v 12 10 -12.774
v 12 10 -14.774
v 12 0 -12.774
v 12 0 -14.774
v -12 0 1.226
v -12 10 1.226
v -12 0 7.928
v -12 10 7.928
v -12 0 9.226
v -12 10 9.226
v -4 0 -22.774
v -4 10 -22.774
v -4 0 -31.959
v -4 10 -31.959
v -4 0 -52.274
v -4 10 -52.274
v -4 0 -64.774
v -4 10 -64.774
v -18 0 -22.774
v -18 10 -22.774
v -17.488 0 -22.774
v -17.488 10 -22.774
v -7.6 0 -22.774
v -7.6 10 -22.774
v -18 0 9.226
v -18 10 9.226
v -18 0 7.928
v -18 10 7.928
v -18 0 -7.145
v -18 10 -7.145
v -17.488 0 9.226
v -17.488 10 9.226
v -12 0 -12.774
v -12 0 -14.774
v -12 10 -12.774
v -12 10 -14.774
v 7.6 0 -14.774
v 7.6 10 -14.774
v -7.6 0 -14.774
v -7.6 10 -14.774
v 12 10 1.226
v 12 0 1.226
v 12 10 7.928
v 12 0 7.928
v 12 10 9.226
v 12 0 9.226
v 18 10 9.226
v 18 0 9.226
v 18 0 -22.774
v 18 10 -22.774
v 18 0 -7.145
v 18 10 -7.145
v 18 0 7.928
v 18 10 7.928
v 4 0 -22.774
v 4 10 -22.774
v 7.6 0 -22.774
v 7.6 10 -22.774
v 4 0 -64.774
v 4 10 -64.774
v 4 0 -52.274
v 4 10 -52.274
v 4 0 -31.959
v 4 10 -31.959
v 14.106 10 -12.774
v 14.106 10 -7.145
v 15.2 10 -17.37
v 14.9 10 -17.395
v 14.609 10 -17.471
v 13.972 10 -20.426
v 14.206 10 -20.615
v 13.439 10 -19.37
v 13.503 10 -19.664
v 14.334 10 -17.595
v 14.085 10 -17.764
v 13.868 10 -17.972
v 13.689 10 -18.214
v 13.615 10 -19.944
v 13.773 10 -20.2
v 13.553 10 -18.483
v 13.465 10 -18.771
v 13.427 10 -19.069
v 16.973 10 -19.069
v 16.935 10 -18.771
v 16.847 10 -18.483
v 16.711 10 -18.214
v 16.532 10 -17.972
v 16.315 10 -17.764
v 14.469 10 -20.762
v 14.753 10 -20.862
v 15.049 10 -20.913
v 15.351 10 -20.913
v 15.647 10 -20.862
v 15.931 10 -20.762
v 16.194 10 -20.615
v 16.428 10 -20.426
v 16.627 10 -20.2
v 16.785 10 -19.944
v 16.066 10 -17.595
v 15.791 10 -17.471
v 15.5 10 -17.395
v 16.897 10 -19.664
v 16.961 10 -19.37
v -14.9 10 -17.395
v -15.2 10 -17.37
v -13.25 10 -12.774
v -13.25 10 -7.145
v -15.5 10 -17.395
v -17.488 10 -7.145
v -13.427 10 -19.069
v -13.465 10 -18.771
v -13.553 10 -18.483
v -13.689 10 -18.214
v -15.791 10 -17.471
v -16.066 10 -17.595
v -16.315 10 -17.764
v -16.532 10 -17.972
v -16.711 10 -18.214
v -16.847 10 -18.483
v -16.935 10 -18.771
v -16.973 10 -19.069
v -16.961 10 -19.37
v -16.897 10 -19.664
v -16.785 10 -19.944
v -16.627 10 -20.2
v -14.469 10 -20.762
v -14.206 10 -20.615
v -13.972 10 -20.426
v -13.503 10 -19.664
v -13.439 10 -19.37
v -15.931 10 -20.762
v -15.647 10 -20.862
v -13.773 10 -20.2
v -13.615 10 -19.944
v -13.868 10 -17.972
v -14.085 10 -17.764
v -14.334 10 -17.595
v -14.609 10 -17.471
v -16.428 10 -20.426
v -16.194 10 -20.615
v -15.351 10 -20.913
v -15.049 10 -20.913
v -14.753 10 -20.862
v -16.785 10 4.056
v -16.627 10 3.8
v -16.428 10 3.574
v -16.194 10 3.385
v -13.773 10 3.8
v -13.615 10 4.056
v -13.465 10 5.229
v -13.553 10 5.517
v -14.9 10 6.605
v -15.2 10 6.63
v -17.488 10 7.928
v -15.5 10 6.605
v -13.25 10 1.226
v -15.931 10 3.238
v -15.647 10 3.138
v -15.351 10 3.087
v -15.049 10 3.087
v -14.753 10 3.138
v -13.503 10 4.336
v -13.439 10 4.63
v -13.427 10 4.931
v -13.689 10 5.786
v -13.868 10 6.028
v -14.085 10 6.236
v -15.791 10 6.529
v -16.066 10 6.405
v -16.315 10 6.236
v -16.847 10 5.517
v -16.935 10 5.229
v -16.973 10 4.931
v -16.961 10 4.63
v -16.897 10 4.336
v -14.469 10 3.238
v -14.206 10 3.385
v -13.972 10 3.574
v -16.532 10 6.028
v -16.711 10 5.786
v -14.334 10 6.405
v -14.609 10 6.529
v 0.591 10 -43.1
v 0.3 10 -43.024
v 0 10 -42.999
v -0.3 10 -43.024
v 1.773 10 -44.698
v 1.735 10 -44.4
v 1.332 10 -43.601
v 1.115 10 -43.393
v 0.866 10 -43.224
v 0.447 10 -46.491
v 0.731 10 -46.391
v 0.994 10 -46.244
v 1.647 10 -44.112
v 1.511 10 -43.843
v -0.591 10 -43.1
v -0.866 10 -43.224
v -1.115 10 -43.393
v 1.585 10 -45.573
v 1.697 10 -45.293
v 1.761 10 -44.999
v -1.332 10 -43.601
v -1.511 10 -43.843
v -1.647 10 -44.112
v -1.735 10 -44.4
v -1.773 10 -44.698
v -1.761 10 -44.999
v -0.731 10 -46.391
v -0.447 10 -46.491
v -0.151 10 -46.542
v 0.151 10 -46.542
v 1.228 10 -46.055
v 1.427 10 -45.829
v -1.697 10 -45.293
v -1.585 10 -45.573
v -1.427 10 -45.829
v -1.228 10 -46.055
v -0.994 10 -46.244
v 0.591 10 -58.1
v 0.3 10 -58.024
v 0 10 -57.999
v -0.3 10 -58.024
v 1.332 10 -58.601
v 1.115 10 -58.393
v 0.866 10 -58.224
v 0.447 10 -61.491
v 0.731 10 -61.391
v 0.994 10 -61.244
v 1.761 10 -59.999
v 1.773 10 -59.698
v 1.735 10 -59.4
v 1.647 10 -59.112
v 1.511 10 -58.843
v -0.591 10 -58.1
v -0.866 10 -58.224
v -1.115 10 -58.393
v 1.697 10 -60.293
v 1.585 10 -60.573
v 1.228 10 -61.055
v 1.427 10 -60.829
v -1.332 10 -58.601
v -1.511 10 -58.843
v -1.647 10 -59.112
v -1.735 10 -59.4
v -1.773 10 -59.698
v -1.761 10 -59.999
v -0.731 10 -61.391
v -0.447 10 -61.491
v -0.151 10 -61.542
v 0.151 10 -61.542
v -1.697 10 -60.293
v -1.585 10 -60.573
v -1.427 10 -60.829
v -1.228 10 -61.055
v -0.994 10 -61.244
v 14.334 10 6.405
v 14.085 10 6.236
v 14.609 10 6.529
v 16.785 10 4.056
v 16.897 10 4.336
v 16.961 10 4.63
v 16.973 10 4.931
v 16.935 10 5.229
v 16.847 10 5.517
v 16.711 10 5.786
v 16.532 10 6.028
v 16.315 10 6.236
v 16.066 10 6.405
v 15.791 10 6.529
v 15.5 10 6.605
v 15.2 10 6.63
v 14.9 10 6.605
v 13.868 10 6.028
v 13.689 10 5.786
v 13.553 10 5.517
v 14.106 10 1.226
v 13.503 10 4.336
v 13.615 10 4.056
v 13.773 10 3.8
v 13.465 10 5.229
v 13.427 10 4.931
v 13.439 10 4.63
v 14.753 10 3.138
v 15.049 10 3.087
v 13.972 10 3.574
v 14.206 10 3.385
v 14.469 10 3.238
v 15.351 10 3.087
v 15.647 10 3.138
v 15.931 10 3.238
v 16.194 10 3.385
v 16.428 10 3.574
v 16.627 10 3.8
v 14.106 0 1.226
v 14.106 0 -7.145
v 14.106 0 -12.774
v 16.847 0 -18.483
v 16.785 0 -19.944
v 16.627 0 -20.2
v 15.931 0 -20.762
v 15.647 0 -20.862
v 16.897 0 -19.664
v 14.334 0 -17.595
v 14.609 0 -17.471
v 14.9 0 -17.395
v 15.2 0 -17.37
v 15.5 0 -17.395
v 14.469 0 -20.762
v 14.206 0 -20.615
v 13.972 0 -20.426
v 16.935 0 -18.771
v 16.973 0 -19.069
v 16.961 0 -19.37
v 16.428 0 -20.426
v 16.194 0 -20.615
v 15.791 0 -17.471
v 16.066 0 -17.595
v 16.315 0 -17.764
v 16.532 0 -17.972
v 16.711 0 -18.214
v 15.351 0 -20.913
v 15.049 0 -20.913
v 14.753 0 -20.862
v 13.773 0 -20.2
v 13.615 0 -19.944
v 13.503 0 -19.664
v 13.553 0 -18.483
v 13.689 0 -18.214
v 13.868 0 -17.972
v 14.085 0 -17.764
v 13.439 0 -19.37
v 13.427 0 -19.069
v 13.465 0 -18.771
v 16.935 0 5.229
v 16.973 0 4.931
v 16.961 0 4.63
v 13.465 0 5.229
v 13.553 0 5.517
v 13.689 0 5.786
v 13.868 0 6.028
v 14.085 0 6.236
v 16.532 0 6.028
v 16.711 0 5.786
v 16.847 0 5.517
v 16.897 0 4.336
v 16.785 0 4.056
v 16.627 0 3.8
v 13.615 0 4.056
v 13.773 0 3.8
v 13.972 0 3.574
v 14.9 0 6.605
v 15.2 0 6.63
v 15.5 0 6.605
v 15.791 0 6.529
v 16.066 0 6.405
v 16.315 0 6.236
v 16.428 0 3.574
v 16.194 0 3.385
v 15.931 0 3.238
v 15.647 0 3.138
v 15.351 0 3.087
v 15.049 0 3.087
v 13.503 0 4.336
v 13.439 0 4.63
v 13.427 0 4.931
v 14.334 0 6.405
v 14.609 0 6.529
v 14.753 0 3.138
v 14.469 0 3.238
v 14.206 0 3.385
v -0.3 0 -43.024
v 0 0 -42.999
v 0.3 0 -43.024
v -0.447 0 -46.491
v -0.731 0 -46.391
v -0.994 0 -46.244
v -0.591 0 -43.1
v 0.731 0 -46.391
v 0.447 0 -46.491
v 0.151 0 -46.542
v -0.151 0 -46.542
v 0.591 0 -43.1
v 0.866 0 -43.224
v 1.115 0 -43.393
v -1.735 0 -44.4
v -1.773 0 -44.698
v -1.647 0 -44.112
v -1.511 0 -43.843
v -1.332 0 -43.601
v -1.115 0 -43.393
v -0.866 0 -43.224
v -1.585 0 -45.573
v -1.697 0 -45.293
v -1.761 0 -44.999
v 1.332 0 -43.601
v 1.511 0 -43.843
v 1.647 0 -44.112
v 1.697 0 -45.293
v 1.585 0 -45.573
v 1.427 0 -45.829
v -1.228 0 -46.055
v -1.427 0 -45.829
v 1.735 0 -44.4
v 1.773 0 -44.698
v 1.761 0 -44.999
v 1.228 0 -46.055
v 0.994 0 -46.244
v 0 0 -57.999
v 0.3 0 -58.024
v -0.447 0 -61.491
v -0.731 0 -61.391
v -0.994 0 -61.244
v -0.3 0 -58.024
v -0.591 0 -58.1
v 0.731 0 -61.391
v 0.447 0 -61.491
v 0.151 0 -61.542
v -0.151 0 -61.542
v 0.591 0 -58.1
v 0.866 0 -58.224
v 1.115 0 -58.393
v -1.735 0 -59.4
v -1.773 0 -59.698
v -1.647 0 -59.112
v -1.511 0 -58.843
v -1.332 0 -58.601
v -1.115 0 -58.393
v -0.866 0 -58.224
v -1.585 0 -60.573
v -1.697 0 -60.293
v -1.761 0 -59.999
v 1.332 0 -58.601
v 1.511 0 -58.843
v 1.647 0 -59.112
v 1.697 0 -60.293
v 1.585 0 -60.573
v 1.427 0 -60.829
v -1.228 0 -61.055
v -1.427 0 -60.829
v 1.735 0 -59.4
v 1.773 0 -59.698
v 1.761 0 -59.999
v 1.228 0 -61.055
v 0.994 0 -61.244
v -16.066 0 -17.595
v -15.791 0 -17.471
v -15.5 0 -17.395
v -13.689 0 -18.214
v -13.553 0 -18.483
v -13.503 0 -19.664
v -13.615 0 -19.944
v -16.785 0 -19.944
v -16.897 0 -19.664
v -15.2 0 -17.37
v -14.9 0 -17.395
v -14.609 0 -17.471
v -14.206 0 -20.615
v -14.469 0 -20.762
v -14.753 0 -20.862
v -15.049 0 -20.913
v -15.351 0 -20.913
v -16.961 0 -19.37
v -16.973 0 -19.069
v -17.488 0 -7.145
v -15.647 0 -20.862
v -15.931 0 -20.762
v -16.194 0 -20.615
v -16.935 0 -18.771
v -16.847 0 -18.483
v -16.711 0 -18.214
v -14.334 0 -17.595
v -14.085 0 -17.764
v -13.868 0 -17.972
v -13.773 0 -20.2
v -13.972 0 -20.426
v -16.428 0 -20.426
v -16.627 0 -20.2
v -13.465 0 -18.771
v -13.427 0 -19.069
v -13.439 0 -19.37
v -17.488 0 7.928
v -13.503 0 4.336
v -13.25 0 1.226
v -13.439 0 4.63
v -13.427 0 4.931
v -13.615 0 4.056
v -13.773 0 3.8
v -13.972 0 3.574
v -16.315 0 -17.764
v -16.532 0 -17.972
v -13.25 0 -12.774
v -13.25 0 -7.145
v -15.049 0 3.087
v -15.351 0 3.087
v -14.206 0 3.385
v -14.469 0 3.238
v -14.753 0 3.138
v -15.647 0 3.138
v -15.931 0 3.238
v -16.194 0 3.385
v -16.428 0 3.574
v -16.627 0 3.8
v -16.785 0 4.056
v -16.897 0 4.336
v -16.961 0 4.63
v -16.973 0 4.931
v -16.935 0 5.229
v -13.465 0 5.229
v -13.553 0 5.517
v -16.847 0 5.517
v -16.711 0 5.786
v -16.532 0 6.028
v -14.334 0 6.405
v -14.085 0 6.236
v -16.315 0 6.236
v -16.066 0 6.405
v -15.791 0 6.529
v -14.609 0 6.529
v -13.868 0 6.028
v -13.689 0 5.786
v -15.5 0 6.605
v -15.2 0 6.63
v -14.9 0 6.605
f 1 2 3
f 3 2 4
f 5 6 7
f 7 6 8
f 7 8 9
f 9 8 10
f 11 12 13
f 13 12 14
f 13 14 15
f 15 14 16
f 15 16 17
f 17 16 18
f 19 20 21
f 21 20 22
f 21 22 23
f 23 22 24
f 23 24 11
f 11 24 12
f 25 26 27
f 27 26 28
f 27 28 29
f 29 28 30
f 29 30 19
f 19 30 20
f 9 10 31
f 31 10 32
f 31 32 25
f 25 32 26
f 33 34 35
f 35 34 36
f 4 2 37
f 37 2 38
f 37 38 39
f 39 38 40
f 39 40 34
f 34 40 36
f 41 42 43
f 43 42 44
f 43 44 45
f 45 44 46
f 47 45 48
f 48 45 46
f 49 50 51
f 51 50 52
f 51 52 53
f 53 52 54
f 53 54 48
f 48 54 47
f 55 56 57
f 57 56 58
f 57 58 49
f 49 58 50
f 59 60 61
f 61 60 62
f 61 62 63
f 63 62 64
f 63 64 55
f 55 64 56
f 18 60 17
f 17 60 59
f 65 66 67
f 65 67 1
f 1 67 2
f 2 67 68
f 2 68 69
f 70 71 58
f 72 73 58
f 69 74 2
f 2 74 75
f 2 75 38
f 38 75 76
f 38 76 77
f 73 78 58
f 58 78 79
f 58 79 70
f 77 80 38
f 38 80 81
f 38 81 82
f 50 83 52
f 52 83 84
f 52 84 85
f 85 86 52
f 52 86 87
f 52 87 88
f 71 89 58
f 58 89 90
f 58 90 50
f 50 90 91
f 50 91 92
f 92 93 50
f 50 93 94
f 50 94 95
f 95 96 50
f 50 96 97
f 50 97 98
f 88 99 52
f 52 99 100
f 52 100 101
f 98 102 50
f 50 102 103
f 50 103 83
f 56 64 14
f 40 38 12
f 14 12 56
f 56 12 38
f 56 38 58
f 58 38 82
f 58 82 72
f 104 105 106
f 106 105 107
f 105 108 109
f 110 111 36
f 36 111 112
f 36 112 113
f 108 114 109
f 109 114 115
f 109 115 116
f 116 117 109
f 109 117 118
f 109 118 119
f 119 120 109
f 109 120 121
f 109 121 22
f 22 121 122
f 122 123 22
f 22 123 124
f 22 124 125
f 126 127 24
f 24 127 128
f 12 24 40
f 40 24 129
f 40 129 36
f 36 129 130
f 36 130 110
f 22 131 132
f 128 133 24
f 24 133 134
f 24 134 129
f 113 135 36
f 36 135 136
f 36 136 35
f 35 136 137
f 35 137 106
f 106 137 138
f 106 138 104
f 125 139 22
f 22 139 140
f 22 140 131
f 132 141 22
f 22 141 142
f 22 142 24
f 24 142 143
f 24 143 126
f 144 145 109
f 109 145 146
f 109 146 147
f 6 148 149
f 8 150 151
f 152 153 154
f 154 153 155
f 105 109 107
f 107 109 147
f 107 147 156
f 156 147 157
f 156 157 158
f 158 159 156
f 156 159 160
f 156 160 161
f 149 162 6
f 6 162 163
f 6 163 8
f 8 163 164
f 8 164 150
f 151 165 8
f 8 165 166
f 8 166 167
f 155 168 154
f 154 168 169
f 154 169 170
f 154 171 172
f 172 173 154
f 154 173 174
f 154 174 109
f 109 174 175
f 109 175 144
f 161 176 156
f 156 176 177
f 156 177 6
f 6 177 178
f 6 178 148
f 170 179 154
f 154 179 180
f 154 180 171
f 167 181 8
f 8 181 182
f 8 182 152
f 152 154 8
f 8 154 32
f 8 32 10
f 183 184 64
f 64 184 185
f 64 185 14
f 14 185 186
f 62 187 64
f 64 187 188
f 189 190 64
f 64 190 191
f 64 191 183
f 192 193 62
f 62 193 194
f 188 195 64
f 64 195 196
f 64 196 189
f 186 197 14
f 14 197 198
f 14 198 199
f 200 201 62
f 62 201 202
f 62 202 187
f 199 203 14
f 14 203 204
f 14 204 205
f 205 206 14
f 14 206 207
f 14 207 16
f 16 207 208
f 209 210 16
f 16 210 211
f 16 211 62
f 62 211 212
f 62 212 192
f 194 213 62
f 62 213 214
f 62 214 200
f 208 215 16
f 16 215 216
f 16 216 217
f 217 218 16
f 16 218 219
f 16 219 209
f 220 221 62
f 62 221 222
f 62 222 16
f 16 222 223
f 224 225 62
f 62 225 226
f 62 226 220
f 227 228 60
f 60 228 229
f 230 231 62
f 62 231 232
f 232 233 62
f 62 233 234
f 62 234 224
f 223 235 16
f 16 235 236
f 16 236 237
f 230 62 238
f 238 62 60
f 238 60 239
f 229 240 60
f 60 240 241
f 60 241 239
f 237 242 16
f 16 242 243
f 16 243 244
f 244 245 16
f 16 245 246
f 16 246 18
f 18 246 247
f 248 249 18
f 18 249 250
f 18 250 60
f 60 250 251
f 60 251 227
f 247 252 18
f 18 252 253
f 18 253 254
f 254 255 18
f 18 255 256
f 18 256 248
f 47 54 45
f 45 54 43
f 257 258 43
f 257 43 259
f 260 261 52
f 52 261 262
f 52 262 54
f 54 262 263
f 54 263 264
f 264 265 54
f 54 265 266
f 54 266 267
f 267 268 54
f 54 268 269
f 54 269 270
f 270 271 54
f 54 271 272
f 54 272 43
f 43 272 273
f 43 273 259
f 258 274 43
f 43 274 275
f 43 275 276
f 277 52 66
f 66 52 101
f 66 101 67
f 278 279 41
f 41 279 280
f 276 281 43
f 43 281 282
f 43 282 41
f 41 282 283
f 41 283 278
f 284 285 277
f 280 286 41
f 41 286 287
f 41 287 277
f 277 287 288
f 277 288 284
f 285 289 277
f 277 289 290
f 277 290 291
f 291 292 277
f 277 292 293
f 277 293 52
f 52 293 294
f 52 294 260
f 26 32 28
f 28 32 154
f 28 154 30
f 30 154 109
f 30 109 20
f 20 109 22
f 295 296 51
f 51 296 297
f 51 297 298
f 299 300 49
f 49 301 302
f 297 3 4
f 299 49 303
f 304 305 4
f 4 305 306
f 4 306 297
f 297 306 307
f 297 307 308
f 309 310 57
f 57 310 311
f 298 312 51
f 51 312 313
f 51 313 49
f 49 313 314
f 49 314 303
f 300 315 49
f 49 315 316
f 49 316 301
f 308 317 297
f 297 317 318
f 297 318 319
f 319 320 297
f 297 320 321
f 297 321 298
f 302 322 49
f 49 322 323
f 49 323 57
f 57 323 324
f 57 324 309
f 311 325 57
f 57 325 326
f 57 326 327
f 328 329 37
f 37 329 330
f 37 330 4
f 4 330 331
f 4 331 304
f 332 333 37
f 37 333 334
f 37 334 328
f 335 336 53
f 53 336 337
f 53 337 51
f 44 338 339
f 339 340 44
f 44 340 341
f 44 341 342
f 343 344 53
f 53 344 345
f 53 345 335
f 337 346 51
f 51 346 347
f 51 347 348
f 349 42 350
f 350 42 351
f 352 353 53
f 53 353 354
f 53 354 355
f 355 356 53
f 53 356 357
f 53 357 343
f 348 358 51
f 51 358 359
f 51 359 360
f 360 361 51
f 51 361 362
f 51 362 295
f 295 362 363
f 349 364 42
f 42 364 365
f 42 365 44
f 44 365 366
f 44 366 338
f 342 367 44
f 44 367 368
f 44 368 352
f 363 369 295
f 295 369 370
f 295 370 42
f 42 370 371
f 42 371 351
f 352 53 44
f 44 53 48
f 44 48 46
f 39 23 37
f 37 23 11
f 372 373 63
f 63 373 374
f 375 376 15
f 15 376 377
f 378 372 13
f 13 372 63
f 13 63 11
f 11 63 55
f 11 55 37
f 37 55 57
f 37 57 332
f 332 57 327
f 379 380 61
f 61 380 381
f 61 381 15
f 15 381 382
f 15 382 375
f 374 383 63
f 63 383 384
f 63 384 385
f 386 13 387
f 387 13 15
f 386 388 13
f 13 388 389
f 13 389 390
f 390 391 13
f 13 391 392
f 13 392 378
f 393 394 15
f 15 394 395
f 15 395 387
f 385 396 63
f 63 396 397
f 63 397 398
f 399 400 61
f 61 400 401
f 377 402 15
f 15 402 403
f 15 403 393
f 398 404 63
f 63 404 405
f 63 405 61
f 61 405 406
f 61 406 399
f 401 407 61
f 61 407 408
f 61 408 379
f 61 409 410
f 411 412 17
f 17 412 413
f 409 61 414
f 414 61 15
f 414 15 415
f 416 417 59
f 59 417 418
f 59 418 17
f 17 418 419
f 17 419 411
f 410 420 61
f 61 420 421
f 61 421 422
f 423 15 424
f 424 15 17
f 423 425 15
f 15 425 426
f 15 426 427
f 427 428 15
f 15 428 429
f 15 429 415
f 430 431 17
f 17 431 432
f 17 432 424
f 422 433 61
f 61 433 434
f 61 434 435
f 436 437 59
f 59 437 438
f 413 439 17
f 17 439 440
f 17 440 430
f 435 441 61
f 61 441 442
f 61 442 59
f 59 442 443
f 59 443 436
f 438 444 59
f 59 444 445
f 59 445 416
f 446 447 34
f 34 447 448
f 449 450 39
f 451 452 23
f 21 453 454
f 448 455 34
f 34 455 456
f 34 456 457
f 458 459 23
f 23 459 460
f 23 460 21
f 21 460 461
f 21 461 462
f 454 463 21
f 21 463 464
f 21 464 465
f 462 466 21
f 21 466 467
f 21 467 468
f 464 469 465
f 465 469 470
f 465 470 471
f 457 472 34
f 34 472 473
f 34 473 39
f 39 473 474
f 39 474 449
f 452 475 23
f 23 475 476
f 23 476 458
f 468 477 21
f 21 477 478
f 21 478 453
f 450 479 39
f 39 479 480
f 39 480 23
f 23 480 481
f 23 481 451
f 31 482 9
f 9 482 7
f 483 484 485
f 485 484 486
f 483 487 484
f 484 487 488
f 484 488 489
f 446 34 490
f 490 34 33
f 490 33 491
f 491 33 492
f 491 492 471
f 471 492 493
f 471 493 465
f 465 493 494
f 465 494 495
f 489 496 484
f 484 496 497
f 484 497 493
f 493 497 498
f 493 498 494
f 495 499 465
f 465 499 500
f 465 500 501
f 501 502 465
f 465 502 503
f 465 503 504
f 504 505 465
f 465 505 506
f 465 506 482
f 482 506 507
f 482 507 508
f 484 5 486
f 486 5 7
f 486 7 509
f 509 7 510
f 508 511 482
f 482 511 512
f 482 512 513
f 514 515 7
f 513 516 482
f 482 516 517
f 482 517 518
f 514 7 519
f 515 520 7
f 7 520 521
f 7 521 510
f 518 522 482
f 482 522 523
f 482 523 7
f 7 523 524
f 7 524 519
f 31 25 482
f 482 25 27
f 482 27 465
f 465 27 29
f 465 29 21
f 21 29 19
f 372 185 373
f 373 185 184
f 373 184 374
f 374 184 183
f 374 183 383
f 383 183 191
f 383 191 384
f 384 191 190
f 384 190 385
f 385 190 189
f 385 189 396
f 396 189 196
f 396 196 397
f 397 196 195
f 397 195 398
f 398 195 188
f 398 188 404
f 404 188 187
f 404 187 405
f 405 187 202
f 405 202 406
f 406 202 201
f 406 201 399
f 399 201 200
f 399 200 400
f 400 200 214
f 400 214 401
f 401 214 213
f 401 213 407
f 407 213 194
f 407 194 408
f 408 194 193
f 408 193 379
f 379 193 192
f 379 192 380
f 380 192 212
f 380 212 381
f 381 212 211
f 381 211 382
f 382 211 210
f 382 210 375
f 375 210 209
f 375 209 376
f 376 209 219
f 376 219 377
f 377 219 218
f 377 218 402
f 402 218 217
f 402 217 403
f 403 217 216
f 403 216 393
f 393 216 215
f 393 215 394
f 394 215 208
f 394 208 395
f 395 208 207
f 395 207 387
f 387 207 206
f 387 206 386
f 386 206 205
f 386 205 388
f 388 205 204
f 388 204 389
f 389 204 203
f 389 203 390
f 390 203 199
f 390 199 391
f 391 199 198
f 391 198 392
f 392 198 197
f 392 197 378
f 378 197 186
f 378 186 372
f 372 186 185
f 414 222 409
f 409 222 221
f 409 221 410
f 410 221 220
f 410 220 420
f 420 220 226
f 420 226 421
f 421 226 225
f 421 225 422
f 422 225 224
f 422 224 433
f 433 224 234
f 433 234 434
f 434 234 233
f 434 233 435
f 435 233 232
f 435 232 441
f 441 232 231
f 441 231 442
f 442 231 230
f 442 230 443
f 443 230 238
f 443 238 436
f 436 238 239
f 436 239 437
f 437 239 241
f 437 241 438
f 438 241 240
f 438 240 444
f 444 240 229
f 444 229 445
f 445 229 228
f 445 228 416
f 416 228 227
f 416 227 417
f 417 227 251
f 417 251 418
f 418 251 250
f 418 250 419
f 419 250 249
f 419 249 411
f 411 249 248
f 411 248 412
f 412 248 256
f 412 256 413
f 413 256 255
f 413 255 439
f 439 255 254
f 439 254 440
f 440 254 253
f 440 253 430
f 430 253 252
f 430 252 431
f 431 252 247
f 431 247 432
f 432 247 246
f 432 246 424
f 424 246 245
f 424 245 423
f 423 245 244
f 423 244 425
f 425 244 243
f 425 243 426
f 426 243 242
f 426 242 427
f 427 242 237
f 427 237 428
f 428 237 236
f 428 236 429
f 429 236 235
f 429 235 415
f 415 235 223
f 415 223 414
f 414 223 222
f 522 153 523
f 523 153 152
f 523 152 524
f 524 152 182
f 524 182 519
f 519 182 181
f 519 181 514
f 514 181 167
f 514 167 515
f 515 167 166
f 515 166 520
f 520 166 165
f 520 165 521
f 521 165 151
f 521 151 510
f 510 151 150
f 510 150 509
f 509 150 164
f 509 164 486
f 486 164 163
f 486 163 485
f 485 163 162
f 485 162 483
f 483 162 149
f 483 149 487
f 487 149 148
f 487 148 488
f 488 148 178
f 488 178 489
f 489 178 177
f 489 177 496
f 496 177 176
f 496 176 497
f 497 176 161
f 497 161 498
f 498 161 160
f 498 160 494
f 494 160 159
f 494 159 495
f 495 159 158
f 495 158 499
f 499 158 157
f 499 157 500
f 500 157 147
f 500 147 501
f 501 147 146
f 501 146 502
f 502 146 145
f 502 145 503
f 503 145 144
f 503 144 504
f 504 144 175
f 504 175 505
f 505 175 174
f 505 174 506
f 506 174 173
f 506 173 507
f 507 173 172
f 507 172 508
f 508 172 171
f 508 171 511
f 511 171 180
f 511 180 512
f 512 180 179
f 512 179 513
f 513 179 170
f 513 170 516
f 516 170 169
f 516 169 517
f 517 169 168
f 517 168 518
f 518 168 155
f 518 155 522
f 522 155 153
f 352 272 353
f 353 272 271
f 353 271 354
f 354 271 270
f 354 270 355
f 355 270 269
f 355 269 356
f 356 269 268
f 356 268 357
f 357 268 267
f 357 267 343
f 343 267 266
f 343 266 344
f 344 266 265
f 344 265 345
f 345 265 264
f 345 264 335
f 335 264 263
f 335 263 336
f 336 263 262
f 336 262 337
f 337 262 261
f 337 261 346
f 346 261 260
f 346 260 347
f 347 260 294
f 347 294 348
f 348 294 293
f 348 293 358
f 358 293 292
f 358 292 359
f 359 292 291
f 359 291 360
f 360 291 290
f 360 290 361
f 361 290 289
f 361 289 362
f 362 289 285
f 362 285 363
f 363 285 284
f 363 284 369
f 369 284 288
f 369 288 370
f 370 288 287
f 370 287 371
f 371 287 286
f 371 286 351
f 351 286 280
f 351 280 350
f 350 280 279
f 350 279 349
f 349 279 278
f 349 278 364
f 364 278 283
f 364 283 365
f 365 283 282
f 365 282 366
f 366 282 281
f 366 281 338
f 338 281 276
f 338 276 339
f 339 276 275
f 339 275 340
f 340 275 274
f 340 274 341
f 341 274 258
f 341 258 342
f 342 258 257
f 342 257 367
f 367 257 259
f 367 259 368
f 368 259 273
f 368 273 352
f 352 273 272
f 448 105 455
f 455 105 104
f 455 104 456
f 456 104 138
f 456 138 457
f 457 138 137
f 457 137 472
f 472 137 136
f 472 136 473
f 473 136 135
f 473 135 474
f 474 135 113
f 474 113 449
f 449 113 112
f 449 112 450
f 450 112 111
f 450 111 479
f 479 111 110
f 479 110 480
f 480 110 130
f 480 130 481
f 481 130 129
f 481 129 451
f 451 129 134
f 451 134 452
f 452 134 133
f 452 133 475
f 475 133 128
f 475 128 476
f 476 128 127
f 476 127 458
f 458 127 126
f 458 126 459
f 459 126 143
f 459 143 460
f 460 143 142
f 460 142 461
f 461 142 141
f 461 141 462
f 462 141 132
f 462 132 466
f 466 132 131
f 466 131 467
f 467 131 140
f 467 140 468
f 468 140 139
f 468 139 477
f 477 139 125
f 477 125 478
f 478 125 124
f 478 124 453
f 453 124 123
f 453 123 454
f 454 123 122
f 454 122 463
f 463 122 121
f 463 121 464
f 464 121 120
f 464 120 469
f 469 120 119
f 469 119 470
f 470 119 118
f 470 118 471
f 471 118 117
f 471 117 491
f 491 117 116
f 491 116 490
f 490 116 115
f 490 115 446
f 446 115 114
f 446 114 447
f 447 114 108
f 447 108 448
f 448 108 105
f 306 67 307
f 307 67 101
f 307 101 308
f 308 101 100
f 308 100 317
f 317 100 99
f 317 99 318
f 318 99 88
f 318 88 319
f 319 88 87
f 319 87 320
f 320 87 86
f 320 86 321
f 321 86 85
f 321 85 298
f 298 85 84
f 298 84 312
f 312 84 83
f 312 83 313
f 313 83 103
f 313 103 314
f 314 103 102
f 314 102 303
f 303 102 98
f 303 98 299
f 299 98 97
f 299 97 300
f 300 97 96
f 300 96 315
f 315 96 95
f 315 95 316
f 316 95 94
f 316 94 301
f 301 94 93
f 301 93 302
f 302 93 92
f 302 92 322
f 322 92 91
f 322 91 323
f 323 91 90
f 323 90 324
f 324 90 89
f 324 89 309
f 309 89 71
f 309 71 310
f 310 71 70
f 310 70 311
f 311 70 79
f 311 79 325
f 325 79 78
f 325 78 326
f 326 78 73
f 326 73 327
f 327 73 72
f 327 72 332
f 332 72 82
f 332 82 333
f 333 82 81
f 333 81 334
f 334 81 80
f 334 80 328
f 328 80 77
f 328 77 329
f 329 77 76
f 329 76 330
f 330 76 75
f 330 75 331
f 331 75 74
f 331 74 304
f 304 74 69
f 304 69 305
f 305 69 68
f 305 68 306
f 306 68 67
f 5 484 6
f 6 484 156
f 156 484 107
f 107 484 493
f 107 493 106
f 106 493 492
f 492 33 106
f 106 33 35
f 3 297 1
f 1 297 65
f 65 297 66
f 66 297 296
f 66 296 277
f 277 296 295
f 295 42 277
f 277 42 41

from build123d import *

# Parameters (mm, degrees)
BOSS_EXTRUDE1_DEPTH = 10
SKETCH2_R           = 1.775
CUT_EXTRUDE1_DEPTH  = 68.967856728
SKETCH3_R           = 1.775
CUT_EXTRUDE2_DEPTH  = 68.967856728
SKETCH4_W           = 1.25
SKETCH4_H           = 14
SKETCH4_W_2         = 2.106329952
CUT_EXTRUDE3_DEPTH  = 68.967856728


with BuildPart() as part:
    # Sketch1 → Boss-Extrude1 (new body)
    with BuildSketch(Plane(origin=(0, 0, 0), x_dir=(1, 0, 0), z_dir=(0, 1, 0))):
        Polygon((-4, 64.77367944), (4, 64.77367944), (4, 22.77367944), (18, 22.77367944), (18, -9.22632056), (12, -9.22632056), (12, 14.77367944), (-12, 14.77367944), (-12, -9.22632056), (-18, -9.22632056), (-18, 22.77367944), (-4, 22.77367944), align=None)
    extrude(amount=BOSS_EXTRUDE1_DEPTH)

    # Sketch2 → Cut-Extrude1 (cut, through all)
    with BuildSketch(Plane(origin=(0, 10, 0), x_dir=(1, 0, 0), z_dir=(0, 1, 0))):
        with Locations(Location((0, 44.77367944, 0), (0, 0, 270))):
            Circle(SKETCH2_R)
        with Locations(Location((0, 59.77367944, 0), (0, 0, 270))):
            Circle(SKETCH2_R)
    extrude(amount=-CUT_EXTRUDE1_DEPTH, mode=Mode.SUBTRACT)

    # Sketch3 → Cut-Extrude2 (cut, through all)
    with BuildSketch(Plane(origin=(0, 10, 0), x_dir=(1, 0, 0), z_dir=(0, 1, 0))):
        with Locations(Location((-15.2, -4.855416268, 0), (0, 0, 270))):
            Circle(SKETCH3_R)
        with Locations(Location((15.2, -4.855416268, 0), (0, 0, 270))):
            Circle(SKETCH3_R)
        with Locations(Location((-15.2, 19.144583732, 0), (0, 0, 270))):
            Circle(SKETCH3_R)
        with Locations(Location((15.2, 19.144583732, 0), (0, 0, 270))):
            Circle(SKETCH3_R)
    extrude(amount=-CUT_EXTRUDE2_DEPTH, mode=Mode.SUBTRACT)

    # Sketch4 → Cut-Extrude3 (cut, through all)
    with BuildSketch(Plane(origin=(0, 10, 0), x_dir=(1, 0, 0), z_dir=(0, 1, 0))):
        with Locations((-12.625, 5.77367944)):
            Rectangle(SKETCH4_W, SKETCH4_H)
        with Locations((13.053164976, 5.77367944)):
            Rectangle(SKETCH4_W_2, SKETCH4_H)
    extrude(amount=-CUT_EXTRUDE3_DEPTH, mode=Mode.SUBTRACT)


solid = part.part
